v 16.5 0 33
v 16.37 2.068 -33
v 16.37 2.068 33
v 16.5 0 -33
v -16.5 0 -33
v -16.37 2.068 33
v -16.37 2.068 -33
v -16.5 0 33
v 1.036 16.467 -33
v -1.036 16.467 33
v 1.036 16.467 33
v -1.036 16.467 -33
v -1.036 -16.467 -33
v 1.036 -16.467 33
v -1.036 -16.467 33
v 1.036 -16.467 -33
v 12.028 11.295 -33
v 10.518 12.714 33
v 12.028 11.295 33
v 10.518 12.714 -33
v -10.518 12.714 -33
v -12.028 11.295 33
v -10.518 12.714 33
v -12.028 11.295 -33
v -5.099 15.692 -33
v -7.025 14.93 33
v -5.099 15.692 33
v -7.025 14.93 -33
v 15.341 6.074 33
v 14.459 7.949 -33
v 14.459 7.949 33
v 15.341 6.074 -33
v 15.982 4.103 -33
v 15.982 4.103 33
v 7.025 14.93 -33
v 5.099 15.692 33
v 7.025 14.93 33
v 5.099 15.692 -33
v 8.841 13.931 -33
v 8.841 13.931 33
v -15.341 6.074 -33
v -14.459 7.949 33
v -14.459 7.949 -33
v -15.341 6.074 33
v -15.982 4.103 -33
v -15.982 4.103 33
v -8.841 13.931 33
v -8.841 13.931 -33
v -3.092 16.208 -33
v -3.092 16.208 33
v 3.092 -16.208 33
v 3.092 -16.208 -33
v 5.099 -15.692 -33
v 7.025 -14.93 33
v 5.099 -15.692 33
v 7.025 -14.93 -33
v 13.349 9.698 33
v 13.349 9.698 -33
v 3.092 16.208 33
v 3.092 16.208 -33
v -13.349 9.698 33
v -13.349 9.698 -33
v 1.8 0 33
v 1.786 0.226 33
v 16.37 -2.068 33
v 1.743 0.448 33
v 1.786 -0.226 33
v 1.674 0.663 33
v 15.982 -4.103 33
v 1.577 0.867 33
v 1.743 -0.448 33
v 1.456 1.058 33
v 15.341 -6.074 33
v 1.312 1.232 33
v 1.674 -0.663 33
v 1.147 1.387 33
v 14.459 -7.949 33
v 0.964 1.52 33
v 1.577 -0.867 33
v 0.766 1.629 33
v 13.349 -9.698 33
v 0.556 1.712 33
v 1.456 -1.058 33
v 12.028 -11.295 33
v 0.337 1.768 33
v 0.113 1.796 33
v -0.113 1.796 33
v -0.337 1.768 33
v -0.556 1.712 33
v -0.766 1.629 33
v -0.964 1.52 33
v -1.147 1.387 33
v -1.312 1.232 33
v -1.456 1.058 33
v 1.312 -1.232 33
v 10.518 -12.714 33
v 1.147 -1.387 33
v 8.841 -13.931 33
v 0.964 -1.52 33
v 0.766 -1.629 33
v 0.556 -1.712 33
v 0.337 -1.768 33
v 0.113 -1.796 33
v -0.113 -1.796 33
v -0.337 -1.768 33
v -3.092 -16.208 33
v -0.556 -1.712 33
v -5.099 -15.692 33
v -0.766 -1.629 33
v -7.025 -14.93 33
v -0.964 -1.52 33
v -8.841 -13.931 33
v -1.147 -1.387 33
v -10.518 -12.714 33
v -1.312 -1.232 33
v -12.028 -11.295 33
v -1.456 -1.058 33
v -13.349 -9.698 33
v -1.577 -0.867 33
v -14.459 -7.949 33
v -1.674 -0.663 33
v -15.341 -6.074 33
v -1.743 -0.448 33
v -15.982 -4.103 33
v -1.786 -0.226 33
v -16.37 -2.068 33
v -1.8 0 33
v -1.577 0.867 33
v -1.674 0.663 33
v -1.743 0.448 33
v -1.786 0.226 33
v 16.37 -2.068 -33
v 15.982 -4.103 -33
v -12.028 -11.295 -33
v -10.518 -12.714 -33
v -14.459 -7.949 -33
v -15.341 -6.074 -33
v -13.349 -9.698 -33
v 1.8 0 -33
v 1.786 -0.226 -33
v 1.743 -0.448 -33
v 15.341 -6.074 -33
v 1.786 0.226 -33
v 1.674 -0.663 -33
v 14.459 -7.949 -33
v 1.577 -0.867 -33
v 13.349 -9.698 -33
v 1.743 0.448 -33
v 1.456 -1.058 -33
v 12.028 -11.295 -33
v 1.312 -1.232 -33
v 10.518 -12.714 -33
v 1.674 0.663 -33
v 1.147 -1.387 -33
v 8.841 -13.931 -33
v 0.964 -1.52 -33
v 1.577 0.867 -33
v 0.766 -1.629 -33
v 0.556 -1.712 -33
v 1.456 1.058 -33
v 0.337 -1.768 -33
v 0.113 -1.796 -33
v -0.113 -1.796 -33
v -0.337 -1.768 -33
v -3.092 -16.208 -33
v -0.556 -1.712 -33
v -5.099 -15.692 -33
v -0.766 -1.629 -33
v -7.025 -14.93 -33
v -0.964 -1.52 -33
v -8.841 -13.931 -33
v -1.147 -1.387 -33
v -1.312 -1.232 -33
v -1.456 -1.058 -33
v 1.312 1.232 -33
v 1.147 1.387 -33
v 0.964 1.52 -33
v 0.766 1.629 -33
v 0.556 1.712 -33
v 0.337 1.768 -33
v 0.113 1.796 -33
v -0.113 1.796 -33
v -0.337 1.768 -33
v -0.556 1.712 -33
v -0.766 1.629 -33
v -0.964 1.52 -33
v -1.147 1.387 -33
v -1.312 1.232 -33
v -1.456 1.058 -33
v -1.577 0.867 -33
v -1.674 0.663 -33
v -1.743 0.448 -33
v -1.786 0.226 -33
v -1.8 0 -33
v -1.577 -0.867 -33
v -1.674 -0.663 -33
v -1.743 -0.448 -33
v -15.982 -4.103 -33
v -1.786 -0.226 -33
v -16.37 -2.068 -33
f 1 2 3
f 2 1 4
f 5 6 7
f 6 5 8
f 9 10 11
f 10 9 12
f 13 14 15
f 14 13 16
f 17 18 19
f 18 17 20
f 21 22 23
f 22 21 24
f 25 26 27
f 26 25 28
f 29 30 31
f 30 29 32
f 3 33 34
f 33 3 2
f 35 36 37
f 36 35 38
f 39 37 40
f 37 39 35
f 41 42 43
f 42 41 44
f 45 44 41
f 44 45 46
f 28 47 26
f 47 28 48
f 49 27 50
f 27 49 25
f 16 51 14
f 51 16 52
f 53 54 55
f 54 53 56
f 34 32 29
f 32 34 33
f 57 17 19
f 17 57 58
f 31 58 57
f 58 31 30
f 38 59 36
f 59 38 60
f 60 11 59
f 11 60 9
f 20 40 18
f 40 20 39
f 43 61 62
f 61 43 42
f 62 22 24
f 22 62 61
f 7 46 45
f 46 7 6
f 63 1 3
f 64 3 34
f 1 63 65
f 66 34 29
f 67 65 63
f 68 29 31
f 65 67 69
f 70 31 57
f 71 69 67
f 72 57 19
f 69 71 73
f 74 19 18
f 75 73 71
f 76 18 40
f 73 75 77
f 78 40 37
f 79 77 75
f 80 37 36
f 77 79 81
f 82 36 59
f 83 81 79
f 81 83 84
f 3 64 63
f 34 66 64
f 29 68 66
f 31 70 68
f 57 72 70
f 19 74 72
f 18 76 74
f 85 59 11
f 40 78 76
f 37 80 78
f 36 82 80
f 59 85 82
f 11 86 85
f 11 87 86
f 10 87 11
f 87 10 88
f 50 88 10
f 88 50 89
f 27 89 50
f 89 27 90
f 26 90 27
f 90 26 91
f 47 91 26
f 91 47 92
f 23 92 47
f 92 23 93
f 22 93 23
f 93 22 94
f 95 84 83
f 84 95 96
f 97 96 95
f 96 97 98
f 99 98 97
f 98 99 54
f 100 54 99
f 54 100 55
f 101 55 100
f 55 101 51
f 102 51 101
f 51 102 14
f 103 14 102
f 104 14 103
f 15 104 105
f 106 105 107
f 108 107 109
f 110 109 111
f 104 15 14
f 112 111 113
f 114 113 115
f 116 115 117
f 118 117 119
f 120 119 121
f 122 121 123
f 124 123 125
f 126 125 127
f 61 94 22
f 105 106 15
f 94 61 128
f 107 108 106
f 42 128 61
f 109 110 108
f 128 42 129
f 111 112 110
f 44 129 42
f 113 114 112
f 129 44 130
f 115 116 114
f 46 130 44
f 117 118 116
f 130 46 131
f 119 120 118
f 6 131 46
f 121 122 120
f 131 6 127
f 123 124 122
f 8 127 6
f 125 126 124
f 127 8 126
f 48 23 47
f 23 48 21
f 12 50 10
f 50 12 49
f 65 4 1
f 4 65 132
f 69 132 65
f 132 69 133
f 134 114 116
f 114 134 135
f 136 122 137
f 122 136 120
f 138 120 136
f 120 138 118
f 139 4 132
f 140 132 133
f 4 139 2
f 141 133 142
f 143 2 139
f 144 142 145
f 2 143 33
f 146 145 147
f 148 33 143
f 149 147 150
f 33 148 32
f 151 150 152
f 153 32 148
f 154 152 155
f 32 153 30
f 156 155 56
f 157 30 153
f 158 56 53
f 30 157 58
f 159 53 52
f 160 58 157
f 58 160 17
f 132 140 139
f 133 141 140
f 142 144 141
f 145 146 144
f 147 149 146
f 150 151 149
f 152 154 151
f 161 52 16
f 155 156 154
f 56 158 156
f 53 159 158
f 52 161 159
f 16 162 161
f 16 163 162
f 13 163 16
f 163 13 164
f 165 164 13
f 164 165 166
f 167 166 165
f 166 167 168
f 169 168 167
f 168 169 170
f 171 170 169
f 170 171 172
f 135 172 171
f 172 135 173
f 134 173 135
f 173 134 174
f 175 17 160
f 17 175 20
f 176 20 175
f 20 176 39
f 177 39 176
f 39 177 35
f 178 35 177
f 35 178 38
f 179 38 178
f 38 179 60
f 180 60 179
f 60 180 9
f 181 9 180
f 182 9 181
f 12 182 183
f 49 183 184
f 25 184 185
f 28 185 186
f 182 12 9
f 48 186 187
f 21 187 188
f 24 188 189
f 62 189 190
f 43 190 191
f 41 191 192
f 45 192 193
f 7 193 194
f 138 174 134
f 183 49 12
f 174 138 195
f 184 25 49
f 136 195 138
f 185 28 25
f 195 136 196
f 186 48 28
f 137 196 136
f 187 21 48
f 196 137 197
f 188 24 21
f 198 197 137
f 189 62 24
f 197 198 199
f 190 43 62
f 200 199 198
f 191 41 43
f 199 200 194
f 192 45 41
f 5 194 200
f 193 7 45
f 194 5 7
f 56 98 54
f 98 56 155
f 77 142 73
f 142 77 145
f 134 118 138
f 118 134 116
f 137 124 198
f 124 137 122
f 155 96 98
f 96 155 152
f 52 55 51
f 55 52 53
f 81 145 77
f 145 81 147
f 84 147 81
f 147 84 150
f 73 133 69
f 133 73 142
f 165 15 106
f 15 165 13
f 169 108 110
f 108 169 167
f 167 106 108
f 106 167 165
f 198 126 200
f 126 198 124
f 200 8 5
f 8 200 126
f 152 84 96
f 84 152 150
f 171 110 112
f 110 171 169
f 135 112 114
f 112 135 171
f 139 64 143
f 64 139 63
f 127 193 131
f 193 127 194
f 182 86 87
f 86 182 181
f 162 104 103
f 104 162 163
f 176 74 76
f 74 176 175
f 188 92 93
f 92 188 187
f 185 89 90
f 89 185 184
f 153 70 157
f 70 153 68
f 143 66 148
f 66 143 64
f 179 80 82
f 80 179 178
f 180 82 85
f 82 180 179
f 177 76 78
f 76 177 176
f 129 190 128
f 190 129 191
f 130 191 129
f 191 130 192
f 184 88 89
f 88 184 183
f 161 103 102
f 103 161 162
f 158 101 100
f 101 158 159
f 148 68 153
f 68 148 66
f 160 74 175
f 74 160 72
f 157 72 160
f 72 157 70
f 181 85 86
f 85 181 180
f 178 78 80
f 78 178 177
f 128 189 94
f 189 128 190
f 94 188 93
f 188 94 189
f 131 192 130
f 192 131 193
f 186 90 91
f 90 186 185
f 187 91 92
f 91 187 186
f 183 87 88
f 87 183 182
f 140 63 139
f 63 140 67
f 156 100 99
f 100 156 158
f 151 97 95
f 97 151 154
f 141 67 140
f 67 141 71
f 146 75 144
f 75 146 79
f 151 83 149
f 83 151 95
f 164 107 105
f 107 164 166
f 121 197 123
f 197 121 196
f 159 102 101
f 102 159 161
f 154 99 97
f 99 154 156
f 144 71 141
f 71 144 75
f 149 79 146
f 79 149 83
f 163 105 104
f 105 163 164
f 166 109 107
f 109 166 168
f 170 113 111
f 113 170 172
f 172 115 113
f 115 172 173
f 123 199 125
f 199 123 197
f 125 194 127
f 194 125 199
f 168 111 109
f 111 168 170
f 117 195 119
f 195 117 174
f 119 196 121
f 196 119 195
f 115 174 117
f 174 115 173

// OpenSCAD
$fn = 50;


difference() {
	union() {
		translate(v = [0, 0, -33.0000000000]) {
			cylinder(h = 66, r = 16.5000000000);
		}
	}
	union() {
		translate(v = [0, 0, -100.0000000000]) {
			cylinder(h = 200, r = 1.8000000000);
		}
	}
}
